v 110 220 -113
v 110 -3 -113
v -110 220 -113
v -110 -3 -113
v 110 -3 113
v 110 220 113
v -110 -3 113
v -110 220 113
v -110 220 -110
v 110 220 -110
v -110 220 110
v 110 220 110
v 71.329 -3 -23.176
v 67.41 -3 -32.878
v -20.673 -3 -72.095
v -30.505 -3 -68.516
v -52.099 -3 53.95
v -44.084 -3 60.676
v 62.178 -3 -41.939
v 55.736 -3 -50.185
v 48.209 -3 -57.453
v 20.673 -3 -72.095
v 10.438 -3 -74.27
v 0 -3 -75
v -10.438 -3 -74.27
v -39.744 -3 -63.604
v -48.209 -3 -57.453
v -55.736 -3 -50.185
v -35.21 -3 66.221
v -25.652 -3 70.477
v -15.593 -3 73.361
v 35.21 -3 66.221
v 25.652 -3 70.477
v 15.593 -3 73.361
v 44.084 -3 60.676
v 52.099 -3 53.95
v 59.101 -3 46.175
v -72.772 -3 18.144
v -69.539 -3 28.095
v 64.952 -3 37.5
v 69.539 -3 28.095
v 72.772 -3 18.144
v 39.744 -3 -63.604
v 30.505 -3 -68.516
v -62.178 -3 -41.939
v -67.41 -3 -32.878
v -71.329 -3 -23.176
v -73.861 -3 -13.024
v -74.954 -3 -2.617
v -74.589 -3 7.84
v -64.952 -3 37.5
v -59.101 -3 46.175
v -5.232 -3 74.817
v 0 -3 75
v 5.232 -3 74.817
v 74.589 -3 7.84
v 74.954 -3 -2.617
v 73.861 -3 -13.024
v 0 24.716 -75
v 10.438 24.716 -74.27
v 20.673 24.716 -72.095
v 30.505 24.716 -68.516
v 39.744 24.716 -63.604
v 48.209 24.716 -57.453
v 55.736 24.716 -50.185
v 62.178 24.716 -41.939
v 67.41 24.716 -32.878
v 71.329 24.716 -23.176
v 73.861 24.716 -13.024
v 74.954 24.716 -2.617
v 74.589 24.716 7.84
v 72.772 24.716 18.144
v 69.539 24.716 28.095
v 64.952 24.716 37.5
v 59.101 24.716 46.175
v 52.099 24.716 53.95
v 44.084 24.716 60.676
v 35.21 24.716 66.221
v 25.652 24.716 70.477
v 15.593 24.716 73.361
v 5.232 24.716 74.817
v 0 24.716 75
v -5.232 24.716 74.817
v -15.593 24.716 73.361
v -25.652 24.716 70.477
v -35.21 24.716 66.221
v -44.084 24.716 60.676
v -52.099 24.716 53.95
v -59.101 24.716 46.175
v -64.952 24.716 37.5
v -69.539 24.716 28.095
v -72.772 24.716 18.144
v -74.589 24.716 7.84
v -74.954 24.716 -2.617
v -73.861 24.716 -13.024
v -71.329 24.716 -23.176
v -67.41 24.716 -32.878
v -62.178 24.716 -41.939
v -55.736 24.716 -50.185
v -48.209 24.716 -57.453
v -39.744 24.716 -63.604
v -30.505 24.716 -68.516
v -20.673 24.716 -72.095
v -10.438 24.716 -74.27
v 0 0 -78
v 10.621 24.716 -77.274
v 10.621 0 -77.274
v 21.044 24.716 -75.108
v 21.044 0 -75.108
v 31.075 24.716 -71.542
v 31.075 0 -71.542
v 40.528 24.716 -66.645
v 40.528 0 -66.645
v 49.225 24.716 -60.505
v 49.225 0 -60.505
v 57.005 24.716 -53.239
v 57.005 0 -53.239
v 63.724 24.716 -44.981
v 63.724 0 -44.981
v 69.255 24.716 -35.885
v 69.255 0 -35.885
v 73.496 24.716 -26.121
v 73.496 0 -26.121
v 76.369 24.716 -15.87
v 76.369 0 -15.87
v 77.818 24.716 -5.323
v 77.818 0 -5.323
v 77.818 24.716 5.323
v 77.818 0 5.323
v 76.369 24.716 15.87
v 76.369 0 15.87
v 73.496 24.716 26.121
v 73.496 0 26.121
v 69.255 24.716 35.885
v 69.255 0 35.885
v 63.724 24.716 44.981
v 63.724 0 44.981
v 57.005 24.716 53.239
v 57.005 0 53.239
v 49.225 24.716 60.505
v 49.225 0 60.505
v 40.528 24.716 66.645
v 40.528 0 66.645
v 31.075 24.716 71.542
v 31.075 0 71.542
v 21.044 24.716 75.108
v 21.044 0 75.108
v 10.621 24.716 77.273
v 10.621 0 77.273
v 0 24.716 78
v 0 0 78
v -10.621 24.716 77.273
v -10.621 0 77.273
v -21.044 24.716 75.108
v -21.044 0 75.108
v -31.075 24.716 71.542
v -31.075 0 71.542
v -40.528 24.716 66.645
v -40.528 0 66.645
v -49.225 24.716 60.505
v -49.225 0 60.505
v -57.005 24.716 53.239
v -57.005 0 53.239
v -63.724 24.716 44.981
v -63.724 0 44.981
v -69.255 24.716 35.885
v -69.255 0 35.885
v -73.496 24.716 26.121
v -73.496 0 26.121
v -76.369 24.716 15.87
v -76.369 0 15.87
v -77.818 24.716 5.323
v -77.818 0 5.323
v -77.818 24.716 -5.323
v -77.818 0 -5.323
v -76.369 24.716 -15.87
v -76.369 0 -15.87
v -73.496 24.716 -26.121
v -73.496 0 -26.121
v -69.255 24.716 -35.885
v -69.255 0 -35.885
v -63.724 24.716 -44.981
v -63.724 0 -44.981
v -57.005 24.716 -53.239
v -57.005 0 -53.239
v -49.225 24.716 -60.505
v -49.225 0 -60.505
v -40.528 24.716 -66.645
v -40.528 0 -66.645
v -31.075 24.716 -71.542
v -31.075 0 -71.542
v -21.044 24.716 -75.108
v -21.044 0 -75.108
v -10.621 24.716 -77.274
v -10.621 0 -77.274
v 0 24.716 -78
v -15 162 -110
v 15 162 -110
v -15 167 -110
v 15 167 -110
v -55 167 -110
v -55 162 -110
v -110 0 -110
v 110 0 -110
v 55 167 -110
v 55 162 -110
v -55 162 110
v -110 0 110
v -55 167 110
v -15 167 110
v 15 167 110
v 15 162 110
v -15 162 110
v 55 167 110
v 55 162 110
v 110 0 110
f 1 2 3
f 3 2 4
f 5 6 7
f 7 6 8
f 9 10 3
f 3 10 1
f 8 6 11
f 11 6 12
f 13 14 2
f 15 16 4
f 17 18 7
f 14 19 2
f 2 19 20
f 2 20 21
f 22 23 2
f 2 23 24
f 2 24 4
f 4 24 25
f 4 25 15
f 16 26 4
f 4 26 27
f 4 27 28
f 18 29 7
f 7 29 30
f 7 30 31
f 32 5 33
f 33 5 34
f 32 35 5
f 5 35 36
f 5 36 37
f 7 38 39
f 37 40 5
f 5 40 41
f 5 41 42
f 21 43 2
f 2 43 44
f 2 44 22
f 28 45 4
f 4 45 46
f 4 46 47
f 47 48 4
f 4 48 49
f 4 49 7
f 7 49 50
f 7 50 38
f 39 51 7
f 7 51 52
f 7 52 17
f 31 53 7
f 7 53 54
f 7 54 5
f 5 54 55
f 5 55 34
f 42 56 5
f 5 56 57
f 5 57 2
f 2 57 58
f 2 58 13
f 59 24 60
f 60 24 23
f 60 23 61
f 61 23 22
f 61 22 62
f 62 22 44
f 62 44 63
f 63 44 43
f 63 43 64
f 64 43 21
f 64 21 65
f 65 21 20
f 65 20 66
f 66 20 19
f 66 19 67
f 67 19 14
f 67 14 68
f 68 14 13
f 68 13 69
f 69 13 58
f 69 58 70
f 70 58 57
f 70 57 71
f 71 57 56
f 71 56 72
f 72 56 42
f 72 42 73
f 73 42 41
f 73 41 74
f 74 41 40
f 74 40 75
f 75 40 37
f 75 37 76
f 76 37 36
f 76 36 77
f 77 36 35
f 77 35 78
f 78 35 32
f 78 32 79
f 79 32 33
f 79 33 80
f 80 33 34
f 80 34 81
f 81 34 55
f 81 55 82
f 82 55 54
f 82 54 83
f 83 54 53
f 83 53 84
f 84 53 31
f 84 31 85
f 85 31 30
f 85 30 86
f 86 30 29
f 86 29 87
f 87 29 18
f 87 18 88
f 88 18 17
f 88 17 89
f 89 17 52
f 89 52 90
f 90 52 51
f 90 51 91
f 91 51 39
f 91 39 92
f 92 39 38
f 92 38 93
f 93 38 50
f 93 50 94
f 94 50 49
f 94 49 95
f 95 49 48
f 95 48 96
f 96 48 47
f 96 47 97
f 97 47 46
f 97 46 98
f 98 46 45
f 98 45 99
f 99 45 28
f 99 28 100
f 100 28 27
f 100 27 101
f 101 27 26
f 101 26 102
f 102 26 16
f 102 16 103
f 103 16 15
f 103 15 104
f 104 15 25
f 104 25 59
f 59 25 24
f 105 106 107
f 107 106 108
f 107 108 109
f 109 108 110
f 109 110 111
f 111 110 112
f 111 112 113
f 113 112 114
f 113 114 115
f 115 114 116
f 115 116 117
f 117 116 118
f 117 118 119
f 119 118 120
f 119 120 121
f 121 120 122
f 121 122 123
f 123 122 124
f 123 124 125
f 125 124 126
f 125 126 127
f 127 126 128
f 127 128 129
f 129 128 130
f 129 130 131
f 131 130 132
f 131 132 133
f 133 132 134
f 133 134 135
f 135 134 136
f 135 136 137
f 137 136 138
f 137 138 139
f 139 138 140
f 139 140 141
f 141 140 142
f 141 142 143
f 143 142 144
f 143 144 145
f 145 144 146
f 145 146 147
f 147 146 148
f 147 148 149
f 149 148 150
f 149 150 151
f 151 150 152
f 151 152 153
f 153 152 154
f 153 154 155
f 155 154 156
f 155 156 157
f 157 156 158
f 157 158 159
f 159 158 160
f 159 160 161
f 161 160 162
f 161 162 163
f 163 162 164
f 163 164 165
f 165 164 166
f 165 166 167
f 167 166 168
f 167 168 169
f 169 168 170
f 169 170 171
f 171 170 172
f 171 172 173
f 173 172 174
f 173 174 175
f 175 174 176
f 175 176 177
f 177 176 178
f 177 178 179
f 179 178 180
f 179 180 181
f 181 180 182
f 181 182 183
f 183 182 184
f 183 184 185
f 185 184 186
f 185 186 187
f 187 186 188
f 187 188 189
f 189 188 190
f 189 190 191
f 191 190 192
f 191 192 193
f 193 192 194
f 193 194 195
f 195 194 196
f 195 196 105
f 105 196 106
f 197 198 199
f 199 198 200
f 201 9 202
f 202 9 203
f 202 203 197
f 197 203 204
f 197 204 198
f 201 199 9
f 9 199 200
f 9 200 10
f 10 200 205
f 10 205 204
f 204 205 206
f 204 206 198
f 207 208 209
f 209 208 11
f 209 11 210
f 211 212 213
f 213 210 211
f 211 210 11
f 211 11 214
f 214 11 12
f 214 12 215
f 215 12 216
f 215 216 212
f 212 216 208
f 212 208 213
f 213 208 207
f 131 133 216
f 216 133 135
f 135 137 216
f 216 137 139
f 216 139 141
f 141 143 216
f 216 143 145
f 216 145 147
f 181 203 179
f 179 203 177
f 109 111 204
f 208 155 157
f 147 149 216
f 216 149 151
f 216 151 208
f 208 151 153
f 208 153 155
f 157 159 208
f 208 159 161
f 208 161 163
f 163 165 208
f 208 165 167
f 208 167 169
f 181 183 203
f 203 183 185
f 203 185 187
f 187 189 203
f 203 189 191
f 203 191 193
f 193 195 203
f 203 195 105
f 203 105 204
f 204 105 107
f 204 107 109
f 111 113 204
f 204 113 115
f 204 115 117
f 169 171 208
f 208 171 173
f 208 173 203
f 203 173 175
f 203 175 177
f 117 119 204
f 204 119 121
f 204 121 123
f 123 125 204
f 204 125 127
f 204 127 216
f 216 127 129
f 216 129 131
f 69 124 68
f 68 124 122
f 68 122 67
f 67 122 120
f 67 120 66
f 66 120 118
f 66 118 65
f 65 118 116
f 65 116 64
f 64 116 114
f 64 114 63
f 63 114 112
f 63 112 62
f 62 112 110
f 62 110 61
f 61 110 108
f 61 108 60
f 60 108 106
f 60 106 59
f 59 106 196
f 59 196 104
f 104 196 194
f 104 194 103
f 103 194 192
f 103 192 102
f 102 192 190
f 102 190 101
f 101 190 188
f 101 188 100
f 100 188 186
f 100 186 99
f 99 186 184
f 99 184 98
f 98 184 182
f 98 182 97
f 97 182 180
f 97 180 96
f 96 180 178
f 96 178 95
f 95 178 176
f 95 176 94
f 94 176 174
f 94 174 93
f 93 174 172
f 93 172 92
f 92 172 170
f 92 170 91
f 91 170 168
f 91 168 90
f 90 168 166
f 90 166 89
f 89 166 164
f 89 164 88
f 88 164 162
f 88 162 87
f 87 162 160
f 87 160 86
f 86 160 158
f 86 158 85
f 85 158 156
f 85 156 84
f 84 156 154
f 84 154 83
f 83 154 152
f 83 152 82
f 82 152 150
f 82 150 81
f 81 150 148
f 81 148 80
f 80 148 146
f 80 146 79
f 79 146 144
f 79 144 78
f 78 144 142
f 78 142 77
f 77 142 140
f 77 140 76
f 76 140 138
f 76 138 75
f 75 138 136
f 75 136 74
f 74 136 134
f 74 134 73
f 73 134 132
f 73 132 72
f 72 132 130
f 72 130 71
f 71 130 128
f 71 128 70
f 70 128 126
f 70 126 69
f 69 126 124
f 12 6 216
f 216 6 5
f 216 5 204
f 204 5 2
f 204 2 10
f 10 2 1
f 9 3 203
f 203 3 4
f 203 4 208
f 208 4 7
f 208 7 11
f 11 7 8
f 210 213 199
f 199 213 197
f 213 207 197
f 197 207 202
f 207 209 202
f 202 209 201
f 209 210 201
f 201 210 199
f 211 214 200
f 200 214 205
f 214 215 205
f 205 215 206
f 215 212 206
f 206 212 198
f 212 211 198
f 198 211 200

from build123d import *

# Parameters (mm, degrees)
SKETCH_1_W                  = 220
SKETCH_1_H                  = 220
EXTRUDE_2_DEPTH             = 220
SKETCH_3_R                  = 78
CUT_EXTRUDE_1_DEPTH         = 240
SHELL_2_T                   = 3
SKETCH_5_W                  = 207.122367347
SKETCH_5_H                  = 195.284428571
CUT_EXTRUDE_3_DEPTH         = 180
SKETCH_12_W                 = 226
SKETCH_12_H                 = 223
CUT_EXTRUDE_6_DEPTH         = 3
SKETCH_13_W                 = 226
SKETCH_13_H                 = 223
CUT_EXTRUDE_7_DEPTH         = 3
EXTRUDE_6_REACH             = 272.682
SKETCH_16_W                 = 40
SKETCH_16_H                 = 5
EXTRUDE_6_DIRECTION_2_REACH = 272.682


with BuildPart() as part:
    # 草图1 → 凸台-拉伸2 (new body)
    with BuildSketch(Plane(origin=(0, 0, 0), x_dir=(1, 0, 0), z_dir=(0, 1, 0))):
        Rectangle(SKETCH_1_W, SKETCH_1_H)
    extrude(amount=EXTRUDE_2_DEPTH)

    # 草图3 → 切除-拉伸1 (cut)
    with BuildSketch(Plane(origin=(0, 0, 0), x_dir=(1, 0, 0), z_dir=(0, 1, 0))):
        with Locations(Location((0, 0, 0), (0, 0, 270))):
            Circle(SKETCH_3_R)
    extrude(amount=CUT_EXTRUDE_1_DEPTH, mode=Mode.SUBTRACT)

    # 抽壳2
    shell_2_openings = [part.faces().sort_by_distance(p)[0] for p in [
        (0, 220, -106.888730163),
    ]]
    offset(amount=SHELL_2_T, openings=shell_2_openings, kind=Kind.INTERSECTION)

    # 草图5 → 切除-拉伸3 (cut)
    with BuildSketch(Plane.ZY.offset(-78)):
        with Locations((-1.991561224, 122.357785714)):
            Rectangle(SKETCH_5_W, SKETCH_5_H)
    extrude(amount=CUT_EXTRUDE_3_DEPTH, mode=Mode.SUBTRACT)

    # 草图12 → 切除-拉伸6 (cut)
    with BuildSketch(Plane(origin=(113, 0, 0), x_dir=(0, 0, -1), z_dir=(1, 0, 0))):
        with Locations((0, 108.5)):
            Rectangle(SKETCH_12_W, SKETCH_12_H)
    extrude(amount=-CUT_EXTRUDE_6_DEPTH, mode=Mode.SUBTRACT)

    # 草图13 → 切除-拉伸7 (cut)
    with BuildSketch(Plane.ZY.offset(113)):
        with Locations((0, 108.5)):
            Rectangle(SKETCH_13_W, SKETCH_13_H)
    extrude(amount=-CUT_EXTRUDE_7_DEPTH, mode=Mode.SUBTRACT)

    # 凸台-拉伸6: up to this face of the body (flat: up to its plane)
    extrude_6_end = Plane(part.part.faces().sort_by_distance((0, 110, -110))[0])
    # 草图16 → 凸台-拉伸6 (add, up to the picked face)
    with BuildSketch(Plane.XY, mode=Mode.PRIVATE) as extrude_6_sk1:
        with Locations((-35, 164.5)):
            Rectangle(SKETCH_16_W, SKETCH_16_H)
    extrude_6_tool1 = split(extrude(extrude_6_sk1.sketch, amount=-EXTRUDE_6_REACH, mode=Mode.PRIVATE), bisect_by=extrude_6_end, keep=Keep.BOTH, mode=Mode.PRIVATE)
    # 草图16 → 凸台-拉伸6 (add, up to the picked face)
    with BuildSketch(Plane.XY, mode=Mode.PRIVATE) as extrude_6_sk2:
        with Locations((35, 164.5)):
            Rectangle(SKETCH_16_W, SKETCH_16_H)
    extrude_6_tool2 = split(extrude(extrude_6_sk2.sketch, amount=-EXTRUDE_6_REACH, mode=Mode.PRIVATE), bisect_by=extrude_6_end, keep=Keep.BOTH, mode=Mode.PRIVATE)
    add(extrude_6_tool1.solids().sort_by(Axis((-35, 164.5, 0), (0, 0, -1)))[0])
    add(extrude_6_tool2.solids().sort_by(Axis((35, 164.5, 0), (0, 0, -1)))[0])

    # 凸台-拉伸6 direction 2: up to this face of the body (flat: up to its plane)
    extrude_6_direction_2_end = Plane(part.part.faces().sort_by_distance((0, 110, 110))[0])
    # 草图16 → 凸台-拉伸6 direction 2 (add, up to the picked face)
    with BuildSketch(Plane.XY, mode=Mode.PRIVATE) as extrude_6_direction_2_sk1:
        with Locations((-35, 164.5)):
            Rectangle(SKETCH_16_W, SKETCH_16_H)
    extrude_6_direction_2_tool1 = split(extrude(extrude_6_direction_2_sk1.sketch, amount=EXTRUDE_6_DIRECTION_2_REACH, mode=Mode.PRIVATE), bisect_by=extrude_6_direction_2_end, keep=Keep.BOTH, mode=Mode.PRIVATE)
    # 草图16 → 凸台-拉伸6 direction 2 (add, up to the picked face)
    with BuildSketch(Plane.XY, mode=Mode.PRIVATE) as extrude_6_direction_2_sk2:
        with Locations((35, 164.5)):
            Rectangle(SKETCH_16_W, SKETCH_16_H)
    extrude_6_direction_2_tool2 = split(extrude(extrude_6_direction_2_sk2.sketch, amount=EXTRUDE_6_DIRECTION_2_REACH, mode=Mode.PRIVATE), bisect_by=extrude_6_direction_2_end, keep=Keep.BOTH, mode=Mode.PRIVATE)
    add(extrude_6_direction_2_tool1.solids().sort_by(Axis((-35, 164.5, 0), (0, 0, 1)))[0])
    add(extrude_6_direction_2_tool2.solids().sort_by(Axis((35, 164.5, 0), (0, 0, 1)))[0])


solid = part.part
